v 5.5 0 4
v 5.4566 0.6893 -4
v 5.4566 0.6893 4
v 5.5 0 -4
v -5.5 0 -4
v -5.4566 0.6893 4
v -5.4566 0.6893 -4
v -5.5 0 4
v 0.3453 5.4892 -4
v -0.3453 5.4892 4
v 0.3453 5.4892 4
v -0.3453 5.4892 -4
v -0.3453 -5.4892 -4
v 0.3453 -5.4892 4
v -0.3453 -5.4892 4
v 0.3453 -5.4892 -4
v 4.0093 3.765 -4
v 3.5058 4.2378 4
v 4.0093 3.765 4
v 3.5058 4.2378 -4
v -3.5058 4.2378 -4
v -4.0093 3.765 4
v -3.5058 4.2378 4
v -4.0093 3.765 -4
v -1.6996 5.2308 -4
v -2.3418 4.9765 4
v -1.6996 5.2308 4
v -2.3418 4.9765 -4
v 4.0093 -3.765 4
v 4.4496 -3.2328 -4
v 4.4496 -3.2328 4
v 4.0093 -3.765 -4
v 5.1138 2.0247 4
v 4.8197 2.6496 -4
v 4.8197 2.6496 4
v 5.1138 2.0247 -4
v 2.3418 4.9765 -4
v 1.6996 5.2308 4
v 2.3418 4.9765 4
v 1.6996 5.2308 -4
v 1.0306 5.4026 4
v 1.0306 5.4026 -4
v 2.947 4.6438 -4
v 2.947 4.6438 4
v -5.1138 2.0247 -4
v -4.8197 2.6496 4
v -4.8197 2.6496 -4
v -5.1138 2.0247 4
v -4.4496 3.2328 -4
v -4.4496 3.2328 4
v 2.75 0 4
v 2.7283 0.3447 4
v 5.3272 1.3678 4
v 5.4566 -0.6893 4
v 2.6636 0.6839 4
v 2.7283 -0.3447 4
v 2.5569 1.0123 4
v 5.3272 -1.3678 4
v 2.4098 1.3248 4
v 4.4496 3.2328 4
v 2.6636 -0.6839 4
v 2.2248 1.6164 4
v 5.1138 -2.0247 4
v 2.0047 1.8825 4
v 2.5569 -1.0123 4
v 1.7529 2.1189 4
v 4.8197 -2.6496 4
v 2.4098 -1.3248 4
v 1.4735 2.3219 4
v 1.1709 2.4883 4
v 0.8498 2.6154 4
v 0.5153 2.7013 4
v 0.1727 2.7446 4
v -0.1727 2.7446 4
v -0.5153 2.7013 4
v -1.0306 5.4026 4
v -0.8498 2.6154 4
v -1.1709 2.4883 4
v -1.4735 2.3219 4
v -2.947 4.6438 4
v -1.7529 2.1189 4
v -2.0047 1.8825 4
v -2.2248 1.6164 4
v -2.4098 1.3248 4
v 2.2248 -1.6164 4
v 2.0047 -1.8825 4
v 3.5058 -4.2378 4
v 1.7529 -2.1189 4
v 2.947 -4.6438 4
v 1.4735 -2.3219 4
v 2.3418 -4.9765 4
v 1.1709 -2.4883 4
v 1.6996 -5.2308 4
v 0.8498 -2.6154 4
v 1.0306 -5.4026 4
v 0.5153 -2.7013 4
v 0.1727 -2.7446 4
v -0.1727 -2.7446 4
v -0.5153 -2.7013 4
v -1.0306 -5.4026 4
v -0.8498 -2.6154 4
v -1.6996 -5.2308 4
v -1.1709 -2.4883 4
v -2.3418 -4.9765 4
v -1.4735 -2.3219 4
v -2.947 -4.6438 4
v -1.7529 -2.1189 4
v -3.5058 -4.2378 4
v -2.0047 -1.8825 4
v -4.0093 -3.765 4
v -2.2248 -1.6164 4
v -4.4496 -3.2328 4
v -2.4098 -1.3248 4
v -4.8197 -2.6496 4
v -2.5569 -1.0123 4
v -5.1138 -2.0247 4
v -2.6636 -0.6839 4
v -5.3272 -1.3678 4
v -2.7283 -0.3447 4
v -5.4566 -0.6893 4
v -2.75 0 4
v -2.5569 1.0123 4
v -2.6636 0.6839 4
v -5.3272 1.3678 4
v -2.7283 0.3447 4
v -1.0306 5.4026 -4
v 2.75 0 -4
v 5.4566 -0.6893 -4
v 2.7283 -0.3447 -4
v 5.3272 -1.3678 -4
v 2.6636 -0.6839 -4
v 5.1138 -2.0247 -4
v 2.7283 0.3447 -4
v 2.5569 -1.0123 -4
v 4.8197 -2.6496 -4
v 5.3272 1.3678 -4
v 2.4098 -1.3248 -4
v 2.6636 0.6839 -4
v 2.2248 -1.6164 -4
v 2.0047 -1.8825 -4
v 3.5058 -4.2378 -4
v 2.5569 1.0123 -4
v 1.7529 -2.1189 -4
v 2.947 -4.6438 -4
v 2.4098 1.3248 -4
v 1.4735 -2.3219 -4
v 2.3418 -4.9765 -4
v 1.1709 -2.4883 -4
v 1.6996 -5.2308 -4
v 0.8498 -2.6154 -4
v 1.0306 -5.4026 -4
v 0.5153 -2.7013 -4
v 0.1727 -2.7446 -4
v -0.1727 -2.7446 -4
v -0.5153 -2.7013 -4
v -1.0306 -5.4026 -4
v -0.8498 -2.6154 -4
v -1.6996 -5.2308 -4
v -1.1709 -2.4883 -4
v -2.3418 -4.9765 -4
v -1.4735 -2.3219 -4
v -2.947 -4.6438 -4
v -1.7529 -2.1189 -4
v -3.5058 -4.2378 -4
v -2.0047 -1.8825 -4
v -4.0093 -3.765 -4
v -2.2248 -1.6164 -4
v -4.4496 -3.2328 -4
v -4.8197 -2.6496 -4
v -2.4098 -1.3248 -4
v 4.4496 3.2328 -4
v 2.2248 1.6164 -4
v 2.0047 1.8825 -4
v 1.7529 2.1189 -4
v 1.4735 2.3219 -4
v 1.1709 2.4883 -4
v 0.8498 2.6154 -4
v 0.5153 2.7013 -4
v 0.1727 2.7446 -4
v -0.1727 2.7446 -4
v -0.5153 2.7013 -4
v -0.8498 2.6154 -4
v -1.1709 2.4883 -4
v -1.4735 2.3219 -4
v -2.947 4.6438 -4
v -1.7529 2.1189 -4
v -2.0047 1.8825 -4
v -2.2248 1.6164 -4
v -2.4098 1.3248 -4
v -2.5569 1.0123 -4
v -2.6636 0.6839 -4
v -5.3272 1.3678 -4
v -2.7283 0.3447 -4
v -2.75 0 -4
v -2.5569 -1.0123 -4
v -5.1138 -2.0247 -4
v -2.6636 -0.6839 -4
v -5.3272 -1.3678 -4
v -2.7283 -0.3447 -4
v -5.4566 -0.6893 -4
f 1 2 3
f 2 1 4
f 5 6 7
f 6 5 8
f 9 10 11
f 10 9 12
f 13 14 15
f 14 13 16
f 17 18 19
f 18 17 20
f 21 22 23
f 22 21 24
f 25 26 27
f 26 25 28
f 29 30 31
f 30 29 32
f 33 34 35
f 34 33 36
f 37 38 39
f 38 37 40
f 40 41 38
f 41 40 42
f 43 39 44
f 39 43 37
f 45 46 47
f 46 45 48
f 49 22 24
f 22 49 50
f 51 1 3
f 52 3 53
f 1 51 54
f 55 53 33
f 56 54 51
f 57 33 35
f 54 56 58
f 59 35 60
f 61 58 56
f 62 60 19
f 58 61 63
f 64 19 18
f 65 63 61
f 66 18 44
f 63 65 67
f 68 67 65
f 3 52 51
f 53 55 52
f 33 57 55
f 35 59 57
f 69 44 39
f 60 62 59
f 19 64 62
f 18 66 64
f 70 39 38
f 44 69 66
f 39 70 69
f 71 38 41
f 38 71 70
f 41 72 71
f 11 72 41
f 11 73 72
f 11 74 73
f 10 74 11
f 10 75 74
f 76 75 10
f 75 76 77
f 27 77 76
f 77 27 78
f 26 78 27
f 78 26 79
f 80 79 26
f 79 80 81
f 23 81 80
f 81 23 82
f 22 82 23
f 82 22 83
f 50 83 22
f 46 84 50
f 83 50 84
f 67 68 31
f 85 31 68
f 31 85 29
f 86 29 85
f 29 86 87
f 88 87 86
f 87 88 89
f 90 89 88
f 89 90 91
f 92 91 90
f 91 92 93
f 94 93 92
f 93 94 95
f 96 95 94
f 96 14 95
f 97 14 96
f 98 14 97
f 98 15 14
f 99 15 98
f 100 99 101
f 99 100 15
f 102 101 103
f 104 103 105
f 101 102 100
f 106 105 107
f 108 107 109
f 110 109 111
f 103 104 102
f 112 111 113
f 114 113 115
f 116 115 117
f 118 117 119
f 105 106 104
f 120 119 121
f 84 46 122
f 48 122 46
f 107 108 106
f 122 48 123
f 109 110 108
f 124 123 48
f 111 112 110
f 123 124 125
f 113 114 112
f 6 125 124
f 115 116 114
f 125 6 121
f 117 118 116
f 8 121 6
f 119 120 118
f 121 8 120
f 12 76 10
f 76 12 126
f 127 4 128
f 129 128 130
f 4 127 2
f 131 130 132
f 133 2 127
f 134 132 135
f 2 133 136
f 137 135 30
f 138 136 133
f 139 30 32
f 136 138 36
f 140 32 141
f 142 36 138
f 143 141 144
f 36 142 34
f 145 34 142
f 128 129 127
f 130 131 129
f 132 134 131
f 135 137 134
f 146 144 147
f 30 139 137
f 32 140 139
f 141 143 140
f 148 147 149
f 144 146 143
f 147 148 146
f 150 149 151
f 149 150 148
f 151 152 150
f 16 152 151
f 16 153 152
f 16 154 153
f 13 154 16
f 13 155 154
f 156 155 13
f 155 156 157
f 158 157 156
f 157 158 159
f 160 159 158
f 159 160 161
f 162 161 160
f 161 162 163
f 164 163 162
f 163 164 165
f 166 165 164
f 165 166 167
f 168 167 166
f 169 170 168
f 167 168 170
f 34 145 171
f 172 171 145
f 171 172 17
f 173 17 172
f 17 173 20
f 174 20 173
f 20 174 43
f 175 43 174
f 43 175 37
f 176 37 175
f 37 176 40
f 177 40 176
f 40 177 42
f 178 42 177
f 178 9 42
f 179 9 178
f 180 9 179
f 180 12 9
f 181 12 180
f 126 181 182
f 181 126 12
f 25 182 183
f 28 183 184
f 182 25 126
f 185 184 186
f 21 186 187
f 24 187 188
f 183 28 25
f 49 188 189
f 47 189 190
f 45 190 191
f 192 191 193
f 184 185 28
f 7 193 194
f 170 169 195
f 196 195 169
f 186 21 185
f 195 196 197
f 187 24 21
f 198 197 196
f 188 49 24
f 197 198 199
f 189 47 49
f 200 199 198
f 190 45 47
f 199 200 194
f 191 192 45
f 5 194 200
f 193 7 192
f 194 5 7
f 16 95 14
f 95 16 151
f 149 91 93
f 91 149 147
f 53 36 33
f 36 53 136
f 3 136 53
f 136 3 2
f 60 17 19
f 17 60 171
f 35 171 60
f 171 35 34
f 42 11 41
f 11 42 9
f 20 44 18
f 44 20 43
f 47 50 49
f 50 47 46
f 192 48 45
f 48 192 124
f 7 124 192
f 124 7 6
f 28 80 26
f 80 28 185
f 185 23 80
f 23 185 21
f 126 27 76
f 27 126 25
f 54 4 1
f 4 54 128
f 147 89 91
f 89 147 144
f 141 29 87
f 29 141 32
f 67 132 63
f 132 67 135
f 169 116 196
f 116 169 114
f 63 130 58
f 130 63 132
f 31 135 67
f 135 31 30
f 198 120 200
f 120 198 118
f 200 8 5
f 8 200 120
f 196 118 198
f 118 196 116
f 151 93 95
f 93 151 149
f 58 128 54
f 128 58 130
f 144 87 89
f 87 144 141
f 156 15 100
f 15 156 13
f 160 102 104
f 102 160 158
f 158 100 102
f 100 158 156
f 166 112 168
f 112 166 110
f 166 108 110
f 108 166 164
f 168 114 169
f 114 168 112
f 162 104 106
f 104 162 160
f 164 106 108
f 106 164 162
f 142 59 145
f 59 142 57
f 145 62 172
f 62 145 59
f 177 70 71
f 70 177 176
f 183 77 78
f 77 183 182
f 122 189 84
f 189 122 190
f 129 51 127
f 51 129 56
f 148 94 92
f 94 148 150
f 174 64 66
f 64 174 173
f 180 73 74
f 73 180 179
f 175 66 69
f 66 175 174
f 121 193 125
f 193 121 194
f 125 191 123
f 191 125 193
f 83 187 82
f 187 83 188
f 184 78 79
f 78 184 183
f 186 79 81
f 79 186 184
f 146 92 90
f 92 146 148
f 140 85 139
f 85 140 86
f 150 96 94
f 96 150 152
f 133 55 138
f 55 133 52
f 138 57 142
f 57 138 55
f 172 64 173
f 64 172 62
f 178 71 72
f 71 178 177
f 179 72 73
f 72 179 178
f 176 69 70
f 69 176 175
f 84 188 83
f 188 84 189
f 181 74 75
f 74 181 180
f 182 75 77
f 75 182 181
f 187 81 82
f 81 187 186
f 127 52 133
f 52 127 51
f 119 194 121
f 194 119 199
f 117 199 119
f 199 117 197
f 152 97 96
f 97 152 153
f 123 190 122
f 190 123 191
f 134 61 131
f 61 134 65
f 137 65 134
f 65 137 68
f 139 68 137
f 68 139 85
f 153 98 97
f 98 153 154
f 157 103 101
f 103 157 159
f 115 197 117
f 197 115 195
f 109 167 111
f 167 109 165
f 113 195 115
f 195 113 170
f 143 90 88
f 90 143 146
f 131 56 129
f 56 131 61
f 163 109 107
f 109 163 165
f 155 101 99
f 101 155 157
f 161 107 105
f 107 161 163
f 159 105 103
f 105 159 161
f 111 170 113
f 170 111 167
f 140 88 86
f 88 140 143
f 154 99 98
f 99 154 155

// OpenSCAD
$fn = 50;


difference() {
	union() {
		translate(v = [0, 0, -4.0000000000]) {
			cylinder(h = 8, r = 5.5000000000);
		}
	}
	union() {
		translate(v = [0, 0, -100.0000000000]) {
			cylinder(h = 200, r = 2.7500000000);
		}
	}
}
